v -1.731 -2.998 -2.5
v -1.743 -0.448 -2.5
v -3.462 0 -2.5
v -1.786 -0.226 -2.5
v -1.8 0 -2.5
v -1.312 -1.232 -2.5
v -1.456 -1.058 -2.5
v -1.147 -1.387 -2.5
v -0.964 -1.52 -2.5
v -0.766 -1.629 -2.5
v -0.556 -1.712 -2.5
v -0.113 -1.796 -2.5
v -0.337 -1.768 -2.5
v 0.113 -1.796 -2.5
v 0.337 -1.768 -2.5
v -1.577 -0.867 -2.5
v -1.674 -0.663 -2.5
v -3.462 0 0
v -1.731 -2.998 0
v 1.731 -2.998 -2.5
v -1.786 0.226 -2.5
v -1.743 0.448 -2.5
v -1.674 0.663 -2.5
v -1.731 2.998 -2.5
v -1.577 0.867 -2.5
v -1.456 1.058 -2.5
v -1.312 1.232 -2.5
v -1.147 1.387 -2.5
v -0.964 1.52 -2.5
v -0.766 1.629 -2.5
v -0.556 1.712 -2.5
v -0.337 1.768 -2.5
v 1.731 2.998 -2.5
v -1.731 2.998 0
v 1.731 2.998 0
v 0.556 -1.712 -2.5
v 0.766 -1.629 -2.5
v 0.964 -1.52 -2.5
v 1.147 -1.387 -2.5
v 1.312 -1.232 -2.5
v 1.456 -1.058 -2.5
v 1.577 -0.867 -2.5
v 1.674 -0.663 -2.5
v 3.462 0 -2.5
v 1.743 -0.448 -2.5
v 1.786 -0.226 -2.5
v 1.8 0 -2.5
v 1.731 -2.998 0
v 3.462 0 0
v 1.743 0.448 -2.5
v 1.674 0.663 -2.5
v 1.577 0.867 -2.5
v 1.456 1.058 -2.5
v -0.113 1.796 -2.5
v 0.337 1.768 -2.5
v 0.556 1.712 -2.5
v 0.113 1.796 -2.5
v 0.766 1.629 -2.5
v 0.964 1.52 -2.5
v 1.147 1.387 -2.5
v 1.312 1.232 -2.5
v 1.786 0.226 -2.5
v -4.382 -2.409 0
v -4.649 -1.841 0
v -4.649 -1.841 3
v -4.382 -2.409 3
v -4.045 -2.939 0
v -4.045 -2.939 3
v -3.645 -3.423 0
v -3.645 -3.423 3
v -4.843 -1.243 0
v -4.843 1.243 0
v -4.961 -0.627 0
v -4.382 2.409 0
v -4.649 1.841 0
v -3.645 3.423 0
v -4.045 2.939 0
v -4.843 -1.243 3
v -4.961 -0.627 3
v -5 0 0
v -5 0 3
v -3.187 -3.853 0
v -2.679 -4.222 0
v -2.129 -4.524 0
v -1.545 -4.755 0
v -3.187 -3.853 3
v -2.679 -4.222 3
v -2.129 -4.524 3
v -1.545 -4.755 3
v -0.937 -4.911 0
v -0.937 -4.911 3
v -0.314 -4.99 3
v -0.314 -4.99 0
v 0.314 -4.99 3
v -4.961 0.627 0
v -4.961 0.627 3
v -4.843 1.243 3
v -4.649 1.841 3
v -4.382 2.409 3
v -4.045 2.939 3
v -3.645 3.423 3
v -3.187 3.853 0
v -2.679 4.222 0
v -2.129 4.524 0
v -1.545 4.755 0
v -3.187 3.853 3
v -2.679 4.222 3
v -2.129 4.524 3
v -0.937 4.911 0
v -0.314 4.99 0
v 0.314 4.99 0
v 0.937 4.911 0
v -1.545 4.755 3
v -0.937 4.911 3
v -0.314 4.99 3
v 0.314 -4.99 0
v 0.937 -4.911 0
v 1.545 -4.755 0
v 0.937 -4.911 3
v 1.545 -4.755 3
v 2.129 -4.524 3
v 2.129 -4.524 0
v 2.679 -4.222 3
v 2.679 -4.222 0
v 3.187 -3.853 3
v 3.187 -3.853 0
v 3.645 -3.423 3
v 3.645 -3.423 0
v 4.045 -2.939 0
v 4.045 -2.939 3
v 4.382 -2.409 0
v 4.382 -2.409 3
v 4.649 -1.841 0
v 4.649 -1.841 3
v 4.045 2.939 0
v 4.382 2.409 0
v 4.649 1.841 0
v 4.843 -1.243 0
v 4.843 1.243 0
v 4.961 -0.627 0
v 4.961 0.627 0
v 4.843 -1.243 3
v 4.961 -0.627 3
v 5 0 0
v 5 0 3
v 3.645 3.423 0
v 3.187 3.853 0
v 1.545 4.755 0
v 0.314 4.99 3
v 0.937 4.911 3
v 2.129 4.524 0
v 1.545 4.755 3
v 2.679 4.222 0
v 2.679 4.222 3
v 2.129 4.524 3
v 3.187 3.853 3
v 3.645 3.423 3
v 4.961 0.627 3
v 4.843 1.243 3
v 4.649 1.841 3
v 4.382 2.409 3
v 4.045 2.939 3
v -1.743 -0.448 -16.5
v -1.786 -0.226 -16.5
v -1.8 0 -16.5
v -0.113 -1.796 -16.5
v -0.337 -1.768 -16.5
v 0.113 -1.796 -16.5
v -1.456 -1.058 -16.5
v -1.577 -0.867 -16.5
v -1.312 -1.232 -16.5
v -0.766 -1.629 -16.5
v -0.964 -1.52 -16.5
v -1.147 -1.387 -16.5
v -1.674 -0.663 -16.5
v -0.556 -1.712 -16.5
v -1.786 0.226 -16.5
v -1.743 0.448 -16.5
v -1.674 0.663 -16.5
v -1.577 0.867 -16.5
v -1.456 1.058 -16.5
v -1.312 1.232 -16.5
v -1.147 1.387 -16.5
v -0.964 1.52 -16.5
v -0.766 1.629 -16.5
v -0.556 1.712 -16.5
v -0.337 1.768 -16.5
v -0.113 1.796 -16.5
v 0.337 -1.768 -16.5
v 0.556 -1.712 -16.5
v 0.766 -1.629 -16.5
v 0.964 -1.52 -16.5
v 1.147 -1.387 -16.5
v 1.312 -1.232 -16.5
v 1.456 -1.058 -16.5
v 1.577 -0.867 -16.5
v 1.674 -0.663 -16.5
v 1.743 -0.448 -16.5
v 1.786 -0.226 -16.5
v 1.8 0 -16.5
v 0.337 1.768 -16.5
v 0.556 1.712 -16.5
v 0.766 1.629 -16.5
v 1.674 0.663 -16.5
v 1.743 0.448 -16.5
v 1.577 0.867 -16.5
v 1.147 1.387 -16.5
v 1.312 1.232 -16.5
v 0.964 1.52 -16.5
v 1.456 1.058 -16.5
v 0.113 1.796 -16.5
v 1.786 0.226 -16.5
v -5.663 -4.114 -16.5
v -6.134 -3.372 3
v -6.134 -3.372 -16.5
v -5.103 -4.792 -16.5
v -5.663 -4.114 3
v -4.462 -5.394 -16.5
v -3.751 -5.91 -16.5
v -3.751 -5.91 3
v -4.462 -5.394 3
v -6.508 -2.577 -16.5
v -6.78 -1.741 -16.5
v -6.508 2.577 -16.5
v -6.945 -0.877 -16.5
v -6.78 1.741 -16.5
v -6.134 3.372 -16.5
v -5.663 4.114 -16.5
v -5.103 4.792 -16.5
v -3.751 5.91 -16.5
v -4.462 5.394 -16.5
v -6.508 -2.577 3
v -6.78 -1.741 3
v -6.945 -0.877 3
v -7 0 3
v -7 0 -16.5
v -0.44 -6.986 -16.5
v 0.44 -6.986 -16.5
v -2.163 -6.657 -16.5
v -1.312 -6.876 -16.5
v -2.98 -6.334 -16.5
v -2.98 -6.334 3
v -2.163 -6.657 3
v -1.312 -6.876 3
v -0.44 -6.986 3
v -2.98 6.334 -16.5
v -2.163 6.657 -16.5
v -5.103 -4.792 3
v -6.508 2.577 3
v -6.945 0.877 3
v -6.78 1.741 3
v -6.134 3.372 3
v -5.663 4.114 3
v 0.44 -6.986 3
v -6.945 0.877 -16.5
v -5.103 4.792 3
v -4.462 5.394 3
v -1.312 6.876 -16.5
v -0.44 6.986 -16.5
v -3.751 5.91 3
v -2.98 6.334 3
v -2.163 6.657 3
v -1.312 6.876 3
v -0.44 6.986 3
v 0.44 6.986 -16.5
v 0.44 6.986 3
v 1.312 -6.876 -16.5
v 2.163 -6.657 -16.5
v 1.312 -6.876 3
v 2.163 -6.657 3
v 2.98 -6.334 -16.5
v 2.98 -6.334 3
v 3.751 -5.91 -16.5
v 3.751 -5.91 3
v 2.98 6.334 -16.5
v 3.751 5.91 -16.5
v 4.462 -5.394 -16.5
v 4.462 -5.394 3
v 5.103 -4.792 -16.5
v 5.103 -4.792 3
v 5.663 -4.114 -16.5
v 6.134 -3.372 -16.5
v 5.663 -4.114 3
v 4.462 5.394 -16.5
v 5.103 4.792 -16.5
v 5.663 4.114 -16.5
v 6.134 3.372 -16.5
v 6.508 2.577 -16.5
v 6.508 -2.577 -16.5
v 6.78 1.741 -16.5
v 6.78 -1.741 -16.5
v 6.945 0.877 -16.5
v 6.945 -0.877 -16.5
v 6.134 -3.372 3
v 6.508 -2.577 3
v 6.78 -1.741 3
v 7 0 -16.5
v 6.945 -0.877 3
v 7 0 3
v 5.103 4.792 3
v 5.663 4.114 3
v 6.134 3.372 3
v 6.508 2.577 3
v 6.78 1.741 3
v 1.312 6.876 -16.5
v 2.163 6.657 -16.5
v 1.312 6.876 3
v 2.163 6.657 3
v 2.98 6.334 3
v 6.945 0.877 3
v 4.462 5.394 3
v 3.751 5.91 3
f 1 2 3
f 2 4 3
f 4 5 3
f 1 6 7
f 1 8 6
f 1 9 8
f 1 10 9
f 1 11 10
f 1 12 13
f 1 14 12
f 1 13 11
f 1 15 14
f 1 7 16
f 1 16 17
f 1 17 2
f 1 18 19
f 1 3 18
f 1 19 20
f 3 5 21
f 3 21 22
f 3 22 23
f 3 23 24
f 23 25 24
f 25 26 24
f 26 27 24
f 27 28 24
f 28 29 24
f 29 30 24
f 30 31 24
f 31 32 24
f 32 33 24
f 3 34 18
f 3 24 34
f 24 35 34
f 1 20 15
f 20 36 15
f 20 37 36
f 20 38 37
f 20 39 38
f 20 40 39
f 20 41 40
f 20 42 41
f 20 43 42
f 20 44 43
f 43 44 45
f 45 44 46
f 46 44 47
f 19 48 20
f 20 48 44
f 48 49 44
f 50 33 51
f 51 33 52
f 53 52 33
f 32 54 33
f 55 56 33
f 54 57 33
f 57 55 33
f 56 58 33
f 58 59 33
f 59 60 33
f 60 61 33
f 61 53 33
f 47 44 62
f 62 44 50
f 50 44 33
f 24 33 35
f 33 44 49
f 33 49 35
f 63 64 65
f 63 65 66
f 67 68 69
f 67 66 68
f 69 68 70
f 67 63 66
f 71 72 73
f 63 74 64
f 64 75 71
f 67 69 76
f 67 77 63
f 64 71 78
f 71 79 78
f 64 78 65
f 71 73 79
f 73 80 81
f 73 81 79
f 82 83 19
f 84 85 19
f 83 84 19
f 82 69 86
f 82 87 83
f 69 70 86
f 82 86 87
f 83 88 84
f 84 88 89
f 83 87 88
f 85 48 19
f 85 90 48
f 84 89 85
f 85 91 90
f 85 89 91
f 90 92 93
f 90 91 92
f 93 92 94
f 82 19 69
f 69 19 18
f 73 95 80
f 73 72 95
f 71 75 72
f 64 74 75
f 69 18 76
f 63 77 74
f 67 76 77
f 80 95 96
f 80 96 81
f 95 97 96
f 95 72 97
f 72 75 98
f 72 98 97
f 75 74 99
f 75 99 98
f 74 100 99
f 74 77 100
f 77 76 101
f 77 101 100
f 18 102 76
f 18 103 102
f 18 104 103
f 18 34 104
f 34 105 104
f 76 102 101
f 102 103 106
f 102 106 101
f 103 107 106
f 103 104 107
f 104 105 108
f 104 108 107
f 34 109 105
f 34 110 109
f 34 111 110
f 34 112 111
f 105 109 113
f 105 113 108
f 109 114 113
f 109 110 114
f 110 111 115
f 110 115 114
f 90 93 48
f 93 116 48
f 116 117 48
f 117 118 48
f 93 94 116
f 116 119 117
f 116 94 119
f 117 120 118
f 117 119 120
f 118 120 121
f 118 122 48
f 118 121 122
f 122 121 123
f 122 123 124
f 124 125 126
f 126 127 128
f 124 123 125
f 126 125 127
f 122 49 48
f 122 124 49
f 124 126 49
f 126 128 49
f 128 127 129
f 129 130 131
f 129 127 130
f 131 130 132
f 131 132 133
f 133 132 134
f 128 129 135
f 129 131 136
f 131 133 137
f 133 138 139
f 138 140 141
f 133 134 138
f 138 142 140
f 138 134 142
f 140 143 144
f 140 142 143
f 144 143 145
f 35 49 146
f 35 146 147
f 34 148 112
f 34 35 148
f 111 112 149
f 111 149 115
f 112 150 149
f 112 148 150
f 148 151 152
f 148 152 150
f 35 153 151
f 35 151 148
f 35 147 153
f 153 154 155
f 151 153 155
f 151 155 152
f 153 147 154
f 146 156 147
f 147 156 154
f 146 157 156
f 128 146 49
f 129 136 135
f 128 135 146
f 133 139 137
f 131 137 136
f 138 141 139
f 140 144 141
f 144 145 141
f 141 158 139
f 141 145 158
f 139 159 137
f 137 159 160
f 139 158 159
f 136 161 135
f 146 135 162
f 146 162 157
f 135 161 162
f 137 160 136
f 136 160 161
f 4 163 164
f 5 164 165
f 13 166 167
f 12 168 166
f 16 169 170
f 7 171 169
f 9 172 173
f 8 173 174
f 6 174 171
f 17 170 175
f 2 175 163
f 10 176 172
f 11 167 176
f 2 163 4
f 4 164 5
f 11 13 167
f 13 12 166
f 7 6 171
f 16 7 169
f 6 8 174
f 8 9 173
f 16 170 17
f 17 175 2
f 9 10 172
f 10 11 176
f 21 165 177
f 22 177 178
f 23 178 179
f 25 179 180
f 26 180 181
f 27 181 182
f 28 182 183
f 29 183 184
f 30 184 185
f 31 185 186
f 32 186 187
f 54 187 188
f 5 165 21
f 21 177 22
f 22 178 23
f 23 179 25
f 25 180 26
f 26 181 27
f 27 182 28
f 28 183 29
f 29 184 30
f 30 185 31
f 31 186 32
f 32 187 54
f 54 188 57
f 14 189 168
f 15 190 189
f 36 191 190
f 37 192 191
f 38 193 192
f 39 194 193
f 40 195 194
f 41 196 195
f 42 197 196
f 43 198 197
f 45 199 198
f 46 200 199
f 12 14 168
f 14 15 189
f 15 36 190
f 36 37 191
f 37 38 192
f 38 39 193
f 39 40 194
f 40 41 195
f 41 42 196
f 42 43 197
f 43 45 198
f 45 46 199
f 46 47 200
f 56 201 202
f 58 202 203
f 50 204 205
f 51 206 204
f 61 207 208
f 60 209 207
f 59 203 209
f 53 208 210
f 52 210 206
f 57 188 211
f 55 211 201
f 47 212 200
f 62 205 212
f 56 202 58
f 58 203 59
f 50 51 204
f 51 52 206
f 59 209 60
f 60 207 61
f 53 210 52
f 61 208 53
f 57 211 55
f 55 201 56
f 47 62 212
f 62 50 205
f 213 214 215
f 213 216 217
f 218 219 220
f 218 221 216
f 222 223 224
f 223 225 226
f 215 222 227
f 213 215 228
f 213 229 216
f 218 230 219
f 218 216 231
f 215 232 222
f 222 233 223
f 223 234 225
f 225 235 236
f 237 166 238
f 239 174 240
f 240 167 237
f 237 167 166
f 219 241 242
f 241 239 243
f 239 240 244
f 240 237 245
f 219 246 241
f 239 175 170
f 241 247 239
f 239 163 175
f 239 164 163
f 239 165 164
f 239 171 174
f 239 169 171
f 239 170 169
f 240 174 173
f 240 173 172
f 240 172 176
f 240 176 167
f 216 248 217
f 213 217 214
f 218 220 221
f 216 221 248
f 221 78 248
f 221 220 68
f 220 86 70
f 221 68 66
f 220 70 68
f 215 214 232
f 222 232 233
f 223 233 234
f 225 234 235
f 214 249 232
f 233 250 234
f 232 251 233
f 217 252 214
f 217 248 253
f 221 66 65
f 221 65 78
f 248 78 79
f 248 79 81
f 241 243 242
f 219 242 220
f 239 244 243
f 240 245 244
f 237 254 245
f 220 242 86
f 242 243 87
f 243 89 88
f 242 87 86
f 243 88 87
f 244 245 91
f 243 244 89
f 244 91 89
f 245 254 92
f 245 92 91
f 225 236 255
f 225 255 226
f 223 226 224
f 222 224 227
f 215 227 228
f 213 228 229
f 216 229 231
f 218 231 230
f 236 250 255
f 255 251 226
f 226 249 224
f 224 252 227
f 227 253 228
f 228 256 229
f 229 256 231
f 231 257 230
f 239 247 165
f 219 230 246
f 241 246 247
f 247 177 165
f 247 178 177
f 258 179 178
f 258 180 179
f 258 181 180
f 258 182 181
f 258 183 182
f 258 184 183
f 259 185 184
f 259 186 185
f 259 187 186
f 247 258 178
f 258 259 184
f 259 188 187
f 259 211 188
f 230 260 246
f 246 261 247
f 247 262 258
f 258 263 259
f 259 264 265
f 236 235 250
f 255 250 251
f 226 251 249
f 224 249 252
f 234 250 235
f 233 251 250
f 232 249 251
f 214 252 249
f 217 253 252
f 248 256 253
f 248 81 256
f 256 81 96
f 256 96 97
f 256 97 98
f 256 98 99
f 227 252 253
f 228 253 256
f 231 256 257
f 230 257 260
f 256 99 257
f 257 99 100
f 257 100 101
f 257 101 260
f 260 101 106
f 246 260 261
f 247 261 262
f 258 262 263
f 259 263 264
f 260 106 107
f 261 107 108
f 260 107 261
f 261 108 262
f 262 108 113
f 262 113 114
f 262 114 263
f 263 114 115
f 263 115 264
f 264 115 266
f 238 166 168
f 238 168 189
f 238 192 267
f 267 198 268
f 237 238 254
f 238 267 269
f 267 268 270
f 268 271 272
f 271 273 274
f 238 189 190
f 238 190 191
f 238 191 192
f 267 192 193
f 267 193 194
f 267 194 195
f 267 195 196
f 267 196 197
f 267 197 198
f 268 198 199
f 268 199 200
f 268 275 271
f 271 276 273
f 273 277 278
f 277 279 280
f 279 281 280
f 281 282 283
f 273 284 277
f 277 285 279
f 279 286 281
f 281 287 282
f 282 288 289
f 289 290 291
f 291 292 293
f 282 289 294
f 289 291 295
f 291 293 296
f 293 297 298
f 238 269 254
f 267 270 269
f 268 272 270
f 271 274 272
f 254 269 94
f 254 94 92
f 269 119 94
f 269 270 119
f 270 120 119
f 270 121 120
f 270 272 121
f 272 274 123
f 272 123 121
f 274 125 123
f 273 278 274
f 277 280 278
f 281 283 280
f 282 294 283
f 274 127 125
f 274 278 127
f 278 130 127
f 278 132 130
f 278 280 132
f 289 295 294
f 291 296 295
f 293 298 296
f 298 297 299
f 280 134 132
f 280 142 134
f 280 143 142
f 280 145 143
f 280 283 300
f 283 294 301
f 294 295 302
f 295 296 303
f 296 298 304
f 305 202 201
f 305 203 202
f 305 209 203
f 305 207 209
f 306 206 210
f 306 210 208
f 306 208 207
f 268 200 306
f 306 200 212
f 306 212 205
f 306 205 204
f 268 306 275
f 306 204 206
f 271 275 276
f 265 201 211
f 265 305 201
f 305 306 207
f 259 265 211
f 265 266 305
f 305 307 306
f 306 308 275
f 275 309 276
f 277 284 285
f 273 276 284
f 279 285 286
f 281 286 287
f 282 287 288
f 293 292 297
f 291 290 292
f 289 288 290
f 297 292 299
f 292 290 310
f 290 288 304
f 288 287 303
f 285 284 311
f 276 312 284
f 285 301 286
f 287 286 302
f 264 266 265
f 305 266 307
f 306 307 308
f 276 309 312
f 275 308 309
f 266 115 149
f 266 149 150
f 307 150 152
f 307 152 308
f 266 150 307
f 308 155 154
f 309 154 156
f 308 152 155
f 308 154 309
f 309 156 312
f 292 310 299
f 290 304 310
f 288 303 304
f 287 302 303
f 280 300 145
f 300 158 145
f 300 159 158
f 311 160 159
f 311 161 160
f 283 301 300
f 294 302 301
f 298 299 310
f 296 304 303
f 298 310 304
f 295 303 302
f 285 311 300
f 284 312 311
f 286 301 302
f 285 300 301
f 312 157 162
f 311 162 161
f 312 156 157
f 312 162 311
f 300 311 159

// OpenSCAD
$fn = 50;

difference() {
	union() {
		translate(v = [0, 0, -16.5]) {
			cylinder(h = 19.5, r = 7.0);
		}
	}
	union() {
		translate(v = [0, 0, 0]) {
			rotate(a = [0, 0, 0]) {
				difference() {
					union() {
						translate(v = [0, 0, -2.5]) {
							linear_extrude(height = 2.5) {
								polygon(points = [[3.4619999999999997, 0.0], [1.7310000000000003, 2.9981799479017264], [-1.7309999999999992, 2.9981799479017264], [-3.4619999999999997, 4.2397272186481365e-16], [-1.7310000000000014, -2.998179947901726], [1.7309999999999977, -2.9981799479017277]]);
							}
						}
					}
					union();
				}
			}
		}
		#cylinder(h = 3, r = 5.0);
		#translate(v = [0, 0, -100.0]) {
			cylinder(h = 200, r = 1.8);
		}
	}
}
